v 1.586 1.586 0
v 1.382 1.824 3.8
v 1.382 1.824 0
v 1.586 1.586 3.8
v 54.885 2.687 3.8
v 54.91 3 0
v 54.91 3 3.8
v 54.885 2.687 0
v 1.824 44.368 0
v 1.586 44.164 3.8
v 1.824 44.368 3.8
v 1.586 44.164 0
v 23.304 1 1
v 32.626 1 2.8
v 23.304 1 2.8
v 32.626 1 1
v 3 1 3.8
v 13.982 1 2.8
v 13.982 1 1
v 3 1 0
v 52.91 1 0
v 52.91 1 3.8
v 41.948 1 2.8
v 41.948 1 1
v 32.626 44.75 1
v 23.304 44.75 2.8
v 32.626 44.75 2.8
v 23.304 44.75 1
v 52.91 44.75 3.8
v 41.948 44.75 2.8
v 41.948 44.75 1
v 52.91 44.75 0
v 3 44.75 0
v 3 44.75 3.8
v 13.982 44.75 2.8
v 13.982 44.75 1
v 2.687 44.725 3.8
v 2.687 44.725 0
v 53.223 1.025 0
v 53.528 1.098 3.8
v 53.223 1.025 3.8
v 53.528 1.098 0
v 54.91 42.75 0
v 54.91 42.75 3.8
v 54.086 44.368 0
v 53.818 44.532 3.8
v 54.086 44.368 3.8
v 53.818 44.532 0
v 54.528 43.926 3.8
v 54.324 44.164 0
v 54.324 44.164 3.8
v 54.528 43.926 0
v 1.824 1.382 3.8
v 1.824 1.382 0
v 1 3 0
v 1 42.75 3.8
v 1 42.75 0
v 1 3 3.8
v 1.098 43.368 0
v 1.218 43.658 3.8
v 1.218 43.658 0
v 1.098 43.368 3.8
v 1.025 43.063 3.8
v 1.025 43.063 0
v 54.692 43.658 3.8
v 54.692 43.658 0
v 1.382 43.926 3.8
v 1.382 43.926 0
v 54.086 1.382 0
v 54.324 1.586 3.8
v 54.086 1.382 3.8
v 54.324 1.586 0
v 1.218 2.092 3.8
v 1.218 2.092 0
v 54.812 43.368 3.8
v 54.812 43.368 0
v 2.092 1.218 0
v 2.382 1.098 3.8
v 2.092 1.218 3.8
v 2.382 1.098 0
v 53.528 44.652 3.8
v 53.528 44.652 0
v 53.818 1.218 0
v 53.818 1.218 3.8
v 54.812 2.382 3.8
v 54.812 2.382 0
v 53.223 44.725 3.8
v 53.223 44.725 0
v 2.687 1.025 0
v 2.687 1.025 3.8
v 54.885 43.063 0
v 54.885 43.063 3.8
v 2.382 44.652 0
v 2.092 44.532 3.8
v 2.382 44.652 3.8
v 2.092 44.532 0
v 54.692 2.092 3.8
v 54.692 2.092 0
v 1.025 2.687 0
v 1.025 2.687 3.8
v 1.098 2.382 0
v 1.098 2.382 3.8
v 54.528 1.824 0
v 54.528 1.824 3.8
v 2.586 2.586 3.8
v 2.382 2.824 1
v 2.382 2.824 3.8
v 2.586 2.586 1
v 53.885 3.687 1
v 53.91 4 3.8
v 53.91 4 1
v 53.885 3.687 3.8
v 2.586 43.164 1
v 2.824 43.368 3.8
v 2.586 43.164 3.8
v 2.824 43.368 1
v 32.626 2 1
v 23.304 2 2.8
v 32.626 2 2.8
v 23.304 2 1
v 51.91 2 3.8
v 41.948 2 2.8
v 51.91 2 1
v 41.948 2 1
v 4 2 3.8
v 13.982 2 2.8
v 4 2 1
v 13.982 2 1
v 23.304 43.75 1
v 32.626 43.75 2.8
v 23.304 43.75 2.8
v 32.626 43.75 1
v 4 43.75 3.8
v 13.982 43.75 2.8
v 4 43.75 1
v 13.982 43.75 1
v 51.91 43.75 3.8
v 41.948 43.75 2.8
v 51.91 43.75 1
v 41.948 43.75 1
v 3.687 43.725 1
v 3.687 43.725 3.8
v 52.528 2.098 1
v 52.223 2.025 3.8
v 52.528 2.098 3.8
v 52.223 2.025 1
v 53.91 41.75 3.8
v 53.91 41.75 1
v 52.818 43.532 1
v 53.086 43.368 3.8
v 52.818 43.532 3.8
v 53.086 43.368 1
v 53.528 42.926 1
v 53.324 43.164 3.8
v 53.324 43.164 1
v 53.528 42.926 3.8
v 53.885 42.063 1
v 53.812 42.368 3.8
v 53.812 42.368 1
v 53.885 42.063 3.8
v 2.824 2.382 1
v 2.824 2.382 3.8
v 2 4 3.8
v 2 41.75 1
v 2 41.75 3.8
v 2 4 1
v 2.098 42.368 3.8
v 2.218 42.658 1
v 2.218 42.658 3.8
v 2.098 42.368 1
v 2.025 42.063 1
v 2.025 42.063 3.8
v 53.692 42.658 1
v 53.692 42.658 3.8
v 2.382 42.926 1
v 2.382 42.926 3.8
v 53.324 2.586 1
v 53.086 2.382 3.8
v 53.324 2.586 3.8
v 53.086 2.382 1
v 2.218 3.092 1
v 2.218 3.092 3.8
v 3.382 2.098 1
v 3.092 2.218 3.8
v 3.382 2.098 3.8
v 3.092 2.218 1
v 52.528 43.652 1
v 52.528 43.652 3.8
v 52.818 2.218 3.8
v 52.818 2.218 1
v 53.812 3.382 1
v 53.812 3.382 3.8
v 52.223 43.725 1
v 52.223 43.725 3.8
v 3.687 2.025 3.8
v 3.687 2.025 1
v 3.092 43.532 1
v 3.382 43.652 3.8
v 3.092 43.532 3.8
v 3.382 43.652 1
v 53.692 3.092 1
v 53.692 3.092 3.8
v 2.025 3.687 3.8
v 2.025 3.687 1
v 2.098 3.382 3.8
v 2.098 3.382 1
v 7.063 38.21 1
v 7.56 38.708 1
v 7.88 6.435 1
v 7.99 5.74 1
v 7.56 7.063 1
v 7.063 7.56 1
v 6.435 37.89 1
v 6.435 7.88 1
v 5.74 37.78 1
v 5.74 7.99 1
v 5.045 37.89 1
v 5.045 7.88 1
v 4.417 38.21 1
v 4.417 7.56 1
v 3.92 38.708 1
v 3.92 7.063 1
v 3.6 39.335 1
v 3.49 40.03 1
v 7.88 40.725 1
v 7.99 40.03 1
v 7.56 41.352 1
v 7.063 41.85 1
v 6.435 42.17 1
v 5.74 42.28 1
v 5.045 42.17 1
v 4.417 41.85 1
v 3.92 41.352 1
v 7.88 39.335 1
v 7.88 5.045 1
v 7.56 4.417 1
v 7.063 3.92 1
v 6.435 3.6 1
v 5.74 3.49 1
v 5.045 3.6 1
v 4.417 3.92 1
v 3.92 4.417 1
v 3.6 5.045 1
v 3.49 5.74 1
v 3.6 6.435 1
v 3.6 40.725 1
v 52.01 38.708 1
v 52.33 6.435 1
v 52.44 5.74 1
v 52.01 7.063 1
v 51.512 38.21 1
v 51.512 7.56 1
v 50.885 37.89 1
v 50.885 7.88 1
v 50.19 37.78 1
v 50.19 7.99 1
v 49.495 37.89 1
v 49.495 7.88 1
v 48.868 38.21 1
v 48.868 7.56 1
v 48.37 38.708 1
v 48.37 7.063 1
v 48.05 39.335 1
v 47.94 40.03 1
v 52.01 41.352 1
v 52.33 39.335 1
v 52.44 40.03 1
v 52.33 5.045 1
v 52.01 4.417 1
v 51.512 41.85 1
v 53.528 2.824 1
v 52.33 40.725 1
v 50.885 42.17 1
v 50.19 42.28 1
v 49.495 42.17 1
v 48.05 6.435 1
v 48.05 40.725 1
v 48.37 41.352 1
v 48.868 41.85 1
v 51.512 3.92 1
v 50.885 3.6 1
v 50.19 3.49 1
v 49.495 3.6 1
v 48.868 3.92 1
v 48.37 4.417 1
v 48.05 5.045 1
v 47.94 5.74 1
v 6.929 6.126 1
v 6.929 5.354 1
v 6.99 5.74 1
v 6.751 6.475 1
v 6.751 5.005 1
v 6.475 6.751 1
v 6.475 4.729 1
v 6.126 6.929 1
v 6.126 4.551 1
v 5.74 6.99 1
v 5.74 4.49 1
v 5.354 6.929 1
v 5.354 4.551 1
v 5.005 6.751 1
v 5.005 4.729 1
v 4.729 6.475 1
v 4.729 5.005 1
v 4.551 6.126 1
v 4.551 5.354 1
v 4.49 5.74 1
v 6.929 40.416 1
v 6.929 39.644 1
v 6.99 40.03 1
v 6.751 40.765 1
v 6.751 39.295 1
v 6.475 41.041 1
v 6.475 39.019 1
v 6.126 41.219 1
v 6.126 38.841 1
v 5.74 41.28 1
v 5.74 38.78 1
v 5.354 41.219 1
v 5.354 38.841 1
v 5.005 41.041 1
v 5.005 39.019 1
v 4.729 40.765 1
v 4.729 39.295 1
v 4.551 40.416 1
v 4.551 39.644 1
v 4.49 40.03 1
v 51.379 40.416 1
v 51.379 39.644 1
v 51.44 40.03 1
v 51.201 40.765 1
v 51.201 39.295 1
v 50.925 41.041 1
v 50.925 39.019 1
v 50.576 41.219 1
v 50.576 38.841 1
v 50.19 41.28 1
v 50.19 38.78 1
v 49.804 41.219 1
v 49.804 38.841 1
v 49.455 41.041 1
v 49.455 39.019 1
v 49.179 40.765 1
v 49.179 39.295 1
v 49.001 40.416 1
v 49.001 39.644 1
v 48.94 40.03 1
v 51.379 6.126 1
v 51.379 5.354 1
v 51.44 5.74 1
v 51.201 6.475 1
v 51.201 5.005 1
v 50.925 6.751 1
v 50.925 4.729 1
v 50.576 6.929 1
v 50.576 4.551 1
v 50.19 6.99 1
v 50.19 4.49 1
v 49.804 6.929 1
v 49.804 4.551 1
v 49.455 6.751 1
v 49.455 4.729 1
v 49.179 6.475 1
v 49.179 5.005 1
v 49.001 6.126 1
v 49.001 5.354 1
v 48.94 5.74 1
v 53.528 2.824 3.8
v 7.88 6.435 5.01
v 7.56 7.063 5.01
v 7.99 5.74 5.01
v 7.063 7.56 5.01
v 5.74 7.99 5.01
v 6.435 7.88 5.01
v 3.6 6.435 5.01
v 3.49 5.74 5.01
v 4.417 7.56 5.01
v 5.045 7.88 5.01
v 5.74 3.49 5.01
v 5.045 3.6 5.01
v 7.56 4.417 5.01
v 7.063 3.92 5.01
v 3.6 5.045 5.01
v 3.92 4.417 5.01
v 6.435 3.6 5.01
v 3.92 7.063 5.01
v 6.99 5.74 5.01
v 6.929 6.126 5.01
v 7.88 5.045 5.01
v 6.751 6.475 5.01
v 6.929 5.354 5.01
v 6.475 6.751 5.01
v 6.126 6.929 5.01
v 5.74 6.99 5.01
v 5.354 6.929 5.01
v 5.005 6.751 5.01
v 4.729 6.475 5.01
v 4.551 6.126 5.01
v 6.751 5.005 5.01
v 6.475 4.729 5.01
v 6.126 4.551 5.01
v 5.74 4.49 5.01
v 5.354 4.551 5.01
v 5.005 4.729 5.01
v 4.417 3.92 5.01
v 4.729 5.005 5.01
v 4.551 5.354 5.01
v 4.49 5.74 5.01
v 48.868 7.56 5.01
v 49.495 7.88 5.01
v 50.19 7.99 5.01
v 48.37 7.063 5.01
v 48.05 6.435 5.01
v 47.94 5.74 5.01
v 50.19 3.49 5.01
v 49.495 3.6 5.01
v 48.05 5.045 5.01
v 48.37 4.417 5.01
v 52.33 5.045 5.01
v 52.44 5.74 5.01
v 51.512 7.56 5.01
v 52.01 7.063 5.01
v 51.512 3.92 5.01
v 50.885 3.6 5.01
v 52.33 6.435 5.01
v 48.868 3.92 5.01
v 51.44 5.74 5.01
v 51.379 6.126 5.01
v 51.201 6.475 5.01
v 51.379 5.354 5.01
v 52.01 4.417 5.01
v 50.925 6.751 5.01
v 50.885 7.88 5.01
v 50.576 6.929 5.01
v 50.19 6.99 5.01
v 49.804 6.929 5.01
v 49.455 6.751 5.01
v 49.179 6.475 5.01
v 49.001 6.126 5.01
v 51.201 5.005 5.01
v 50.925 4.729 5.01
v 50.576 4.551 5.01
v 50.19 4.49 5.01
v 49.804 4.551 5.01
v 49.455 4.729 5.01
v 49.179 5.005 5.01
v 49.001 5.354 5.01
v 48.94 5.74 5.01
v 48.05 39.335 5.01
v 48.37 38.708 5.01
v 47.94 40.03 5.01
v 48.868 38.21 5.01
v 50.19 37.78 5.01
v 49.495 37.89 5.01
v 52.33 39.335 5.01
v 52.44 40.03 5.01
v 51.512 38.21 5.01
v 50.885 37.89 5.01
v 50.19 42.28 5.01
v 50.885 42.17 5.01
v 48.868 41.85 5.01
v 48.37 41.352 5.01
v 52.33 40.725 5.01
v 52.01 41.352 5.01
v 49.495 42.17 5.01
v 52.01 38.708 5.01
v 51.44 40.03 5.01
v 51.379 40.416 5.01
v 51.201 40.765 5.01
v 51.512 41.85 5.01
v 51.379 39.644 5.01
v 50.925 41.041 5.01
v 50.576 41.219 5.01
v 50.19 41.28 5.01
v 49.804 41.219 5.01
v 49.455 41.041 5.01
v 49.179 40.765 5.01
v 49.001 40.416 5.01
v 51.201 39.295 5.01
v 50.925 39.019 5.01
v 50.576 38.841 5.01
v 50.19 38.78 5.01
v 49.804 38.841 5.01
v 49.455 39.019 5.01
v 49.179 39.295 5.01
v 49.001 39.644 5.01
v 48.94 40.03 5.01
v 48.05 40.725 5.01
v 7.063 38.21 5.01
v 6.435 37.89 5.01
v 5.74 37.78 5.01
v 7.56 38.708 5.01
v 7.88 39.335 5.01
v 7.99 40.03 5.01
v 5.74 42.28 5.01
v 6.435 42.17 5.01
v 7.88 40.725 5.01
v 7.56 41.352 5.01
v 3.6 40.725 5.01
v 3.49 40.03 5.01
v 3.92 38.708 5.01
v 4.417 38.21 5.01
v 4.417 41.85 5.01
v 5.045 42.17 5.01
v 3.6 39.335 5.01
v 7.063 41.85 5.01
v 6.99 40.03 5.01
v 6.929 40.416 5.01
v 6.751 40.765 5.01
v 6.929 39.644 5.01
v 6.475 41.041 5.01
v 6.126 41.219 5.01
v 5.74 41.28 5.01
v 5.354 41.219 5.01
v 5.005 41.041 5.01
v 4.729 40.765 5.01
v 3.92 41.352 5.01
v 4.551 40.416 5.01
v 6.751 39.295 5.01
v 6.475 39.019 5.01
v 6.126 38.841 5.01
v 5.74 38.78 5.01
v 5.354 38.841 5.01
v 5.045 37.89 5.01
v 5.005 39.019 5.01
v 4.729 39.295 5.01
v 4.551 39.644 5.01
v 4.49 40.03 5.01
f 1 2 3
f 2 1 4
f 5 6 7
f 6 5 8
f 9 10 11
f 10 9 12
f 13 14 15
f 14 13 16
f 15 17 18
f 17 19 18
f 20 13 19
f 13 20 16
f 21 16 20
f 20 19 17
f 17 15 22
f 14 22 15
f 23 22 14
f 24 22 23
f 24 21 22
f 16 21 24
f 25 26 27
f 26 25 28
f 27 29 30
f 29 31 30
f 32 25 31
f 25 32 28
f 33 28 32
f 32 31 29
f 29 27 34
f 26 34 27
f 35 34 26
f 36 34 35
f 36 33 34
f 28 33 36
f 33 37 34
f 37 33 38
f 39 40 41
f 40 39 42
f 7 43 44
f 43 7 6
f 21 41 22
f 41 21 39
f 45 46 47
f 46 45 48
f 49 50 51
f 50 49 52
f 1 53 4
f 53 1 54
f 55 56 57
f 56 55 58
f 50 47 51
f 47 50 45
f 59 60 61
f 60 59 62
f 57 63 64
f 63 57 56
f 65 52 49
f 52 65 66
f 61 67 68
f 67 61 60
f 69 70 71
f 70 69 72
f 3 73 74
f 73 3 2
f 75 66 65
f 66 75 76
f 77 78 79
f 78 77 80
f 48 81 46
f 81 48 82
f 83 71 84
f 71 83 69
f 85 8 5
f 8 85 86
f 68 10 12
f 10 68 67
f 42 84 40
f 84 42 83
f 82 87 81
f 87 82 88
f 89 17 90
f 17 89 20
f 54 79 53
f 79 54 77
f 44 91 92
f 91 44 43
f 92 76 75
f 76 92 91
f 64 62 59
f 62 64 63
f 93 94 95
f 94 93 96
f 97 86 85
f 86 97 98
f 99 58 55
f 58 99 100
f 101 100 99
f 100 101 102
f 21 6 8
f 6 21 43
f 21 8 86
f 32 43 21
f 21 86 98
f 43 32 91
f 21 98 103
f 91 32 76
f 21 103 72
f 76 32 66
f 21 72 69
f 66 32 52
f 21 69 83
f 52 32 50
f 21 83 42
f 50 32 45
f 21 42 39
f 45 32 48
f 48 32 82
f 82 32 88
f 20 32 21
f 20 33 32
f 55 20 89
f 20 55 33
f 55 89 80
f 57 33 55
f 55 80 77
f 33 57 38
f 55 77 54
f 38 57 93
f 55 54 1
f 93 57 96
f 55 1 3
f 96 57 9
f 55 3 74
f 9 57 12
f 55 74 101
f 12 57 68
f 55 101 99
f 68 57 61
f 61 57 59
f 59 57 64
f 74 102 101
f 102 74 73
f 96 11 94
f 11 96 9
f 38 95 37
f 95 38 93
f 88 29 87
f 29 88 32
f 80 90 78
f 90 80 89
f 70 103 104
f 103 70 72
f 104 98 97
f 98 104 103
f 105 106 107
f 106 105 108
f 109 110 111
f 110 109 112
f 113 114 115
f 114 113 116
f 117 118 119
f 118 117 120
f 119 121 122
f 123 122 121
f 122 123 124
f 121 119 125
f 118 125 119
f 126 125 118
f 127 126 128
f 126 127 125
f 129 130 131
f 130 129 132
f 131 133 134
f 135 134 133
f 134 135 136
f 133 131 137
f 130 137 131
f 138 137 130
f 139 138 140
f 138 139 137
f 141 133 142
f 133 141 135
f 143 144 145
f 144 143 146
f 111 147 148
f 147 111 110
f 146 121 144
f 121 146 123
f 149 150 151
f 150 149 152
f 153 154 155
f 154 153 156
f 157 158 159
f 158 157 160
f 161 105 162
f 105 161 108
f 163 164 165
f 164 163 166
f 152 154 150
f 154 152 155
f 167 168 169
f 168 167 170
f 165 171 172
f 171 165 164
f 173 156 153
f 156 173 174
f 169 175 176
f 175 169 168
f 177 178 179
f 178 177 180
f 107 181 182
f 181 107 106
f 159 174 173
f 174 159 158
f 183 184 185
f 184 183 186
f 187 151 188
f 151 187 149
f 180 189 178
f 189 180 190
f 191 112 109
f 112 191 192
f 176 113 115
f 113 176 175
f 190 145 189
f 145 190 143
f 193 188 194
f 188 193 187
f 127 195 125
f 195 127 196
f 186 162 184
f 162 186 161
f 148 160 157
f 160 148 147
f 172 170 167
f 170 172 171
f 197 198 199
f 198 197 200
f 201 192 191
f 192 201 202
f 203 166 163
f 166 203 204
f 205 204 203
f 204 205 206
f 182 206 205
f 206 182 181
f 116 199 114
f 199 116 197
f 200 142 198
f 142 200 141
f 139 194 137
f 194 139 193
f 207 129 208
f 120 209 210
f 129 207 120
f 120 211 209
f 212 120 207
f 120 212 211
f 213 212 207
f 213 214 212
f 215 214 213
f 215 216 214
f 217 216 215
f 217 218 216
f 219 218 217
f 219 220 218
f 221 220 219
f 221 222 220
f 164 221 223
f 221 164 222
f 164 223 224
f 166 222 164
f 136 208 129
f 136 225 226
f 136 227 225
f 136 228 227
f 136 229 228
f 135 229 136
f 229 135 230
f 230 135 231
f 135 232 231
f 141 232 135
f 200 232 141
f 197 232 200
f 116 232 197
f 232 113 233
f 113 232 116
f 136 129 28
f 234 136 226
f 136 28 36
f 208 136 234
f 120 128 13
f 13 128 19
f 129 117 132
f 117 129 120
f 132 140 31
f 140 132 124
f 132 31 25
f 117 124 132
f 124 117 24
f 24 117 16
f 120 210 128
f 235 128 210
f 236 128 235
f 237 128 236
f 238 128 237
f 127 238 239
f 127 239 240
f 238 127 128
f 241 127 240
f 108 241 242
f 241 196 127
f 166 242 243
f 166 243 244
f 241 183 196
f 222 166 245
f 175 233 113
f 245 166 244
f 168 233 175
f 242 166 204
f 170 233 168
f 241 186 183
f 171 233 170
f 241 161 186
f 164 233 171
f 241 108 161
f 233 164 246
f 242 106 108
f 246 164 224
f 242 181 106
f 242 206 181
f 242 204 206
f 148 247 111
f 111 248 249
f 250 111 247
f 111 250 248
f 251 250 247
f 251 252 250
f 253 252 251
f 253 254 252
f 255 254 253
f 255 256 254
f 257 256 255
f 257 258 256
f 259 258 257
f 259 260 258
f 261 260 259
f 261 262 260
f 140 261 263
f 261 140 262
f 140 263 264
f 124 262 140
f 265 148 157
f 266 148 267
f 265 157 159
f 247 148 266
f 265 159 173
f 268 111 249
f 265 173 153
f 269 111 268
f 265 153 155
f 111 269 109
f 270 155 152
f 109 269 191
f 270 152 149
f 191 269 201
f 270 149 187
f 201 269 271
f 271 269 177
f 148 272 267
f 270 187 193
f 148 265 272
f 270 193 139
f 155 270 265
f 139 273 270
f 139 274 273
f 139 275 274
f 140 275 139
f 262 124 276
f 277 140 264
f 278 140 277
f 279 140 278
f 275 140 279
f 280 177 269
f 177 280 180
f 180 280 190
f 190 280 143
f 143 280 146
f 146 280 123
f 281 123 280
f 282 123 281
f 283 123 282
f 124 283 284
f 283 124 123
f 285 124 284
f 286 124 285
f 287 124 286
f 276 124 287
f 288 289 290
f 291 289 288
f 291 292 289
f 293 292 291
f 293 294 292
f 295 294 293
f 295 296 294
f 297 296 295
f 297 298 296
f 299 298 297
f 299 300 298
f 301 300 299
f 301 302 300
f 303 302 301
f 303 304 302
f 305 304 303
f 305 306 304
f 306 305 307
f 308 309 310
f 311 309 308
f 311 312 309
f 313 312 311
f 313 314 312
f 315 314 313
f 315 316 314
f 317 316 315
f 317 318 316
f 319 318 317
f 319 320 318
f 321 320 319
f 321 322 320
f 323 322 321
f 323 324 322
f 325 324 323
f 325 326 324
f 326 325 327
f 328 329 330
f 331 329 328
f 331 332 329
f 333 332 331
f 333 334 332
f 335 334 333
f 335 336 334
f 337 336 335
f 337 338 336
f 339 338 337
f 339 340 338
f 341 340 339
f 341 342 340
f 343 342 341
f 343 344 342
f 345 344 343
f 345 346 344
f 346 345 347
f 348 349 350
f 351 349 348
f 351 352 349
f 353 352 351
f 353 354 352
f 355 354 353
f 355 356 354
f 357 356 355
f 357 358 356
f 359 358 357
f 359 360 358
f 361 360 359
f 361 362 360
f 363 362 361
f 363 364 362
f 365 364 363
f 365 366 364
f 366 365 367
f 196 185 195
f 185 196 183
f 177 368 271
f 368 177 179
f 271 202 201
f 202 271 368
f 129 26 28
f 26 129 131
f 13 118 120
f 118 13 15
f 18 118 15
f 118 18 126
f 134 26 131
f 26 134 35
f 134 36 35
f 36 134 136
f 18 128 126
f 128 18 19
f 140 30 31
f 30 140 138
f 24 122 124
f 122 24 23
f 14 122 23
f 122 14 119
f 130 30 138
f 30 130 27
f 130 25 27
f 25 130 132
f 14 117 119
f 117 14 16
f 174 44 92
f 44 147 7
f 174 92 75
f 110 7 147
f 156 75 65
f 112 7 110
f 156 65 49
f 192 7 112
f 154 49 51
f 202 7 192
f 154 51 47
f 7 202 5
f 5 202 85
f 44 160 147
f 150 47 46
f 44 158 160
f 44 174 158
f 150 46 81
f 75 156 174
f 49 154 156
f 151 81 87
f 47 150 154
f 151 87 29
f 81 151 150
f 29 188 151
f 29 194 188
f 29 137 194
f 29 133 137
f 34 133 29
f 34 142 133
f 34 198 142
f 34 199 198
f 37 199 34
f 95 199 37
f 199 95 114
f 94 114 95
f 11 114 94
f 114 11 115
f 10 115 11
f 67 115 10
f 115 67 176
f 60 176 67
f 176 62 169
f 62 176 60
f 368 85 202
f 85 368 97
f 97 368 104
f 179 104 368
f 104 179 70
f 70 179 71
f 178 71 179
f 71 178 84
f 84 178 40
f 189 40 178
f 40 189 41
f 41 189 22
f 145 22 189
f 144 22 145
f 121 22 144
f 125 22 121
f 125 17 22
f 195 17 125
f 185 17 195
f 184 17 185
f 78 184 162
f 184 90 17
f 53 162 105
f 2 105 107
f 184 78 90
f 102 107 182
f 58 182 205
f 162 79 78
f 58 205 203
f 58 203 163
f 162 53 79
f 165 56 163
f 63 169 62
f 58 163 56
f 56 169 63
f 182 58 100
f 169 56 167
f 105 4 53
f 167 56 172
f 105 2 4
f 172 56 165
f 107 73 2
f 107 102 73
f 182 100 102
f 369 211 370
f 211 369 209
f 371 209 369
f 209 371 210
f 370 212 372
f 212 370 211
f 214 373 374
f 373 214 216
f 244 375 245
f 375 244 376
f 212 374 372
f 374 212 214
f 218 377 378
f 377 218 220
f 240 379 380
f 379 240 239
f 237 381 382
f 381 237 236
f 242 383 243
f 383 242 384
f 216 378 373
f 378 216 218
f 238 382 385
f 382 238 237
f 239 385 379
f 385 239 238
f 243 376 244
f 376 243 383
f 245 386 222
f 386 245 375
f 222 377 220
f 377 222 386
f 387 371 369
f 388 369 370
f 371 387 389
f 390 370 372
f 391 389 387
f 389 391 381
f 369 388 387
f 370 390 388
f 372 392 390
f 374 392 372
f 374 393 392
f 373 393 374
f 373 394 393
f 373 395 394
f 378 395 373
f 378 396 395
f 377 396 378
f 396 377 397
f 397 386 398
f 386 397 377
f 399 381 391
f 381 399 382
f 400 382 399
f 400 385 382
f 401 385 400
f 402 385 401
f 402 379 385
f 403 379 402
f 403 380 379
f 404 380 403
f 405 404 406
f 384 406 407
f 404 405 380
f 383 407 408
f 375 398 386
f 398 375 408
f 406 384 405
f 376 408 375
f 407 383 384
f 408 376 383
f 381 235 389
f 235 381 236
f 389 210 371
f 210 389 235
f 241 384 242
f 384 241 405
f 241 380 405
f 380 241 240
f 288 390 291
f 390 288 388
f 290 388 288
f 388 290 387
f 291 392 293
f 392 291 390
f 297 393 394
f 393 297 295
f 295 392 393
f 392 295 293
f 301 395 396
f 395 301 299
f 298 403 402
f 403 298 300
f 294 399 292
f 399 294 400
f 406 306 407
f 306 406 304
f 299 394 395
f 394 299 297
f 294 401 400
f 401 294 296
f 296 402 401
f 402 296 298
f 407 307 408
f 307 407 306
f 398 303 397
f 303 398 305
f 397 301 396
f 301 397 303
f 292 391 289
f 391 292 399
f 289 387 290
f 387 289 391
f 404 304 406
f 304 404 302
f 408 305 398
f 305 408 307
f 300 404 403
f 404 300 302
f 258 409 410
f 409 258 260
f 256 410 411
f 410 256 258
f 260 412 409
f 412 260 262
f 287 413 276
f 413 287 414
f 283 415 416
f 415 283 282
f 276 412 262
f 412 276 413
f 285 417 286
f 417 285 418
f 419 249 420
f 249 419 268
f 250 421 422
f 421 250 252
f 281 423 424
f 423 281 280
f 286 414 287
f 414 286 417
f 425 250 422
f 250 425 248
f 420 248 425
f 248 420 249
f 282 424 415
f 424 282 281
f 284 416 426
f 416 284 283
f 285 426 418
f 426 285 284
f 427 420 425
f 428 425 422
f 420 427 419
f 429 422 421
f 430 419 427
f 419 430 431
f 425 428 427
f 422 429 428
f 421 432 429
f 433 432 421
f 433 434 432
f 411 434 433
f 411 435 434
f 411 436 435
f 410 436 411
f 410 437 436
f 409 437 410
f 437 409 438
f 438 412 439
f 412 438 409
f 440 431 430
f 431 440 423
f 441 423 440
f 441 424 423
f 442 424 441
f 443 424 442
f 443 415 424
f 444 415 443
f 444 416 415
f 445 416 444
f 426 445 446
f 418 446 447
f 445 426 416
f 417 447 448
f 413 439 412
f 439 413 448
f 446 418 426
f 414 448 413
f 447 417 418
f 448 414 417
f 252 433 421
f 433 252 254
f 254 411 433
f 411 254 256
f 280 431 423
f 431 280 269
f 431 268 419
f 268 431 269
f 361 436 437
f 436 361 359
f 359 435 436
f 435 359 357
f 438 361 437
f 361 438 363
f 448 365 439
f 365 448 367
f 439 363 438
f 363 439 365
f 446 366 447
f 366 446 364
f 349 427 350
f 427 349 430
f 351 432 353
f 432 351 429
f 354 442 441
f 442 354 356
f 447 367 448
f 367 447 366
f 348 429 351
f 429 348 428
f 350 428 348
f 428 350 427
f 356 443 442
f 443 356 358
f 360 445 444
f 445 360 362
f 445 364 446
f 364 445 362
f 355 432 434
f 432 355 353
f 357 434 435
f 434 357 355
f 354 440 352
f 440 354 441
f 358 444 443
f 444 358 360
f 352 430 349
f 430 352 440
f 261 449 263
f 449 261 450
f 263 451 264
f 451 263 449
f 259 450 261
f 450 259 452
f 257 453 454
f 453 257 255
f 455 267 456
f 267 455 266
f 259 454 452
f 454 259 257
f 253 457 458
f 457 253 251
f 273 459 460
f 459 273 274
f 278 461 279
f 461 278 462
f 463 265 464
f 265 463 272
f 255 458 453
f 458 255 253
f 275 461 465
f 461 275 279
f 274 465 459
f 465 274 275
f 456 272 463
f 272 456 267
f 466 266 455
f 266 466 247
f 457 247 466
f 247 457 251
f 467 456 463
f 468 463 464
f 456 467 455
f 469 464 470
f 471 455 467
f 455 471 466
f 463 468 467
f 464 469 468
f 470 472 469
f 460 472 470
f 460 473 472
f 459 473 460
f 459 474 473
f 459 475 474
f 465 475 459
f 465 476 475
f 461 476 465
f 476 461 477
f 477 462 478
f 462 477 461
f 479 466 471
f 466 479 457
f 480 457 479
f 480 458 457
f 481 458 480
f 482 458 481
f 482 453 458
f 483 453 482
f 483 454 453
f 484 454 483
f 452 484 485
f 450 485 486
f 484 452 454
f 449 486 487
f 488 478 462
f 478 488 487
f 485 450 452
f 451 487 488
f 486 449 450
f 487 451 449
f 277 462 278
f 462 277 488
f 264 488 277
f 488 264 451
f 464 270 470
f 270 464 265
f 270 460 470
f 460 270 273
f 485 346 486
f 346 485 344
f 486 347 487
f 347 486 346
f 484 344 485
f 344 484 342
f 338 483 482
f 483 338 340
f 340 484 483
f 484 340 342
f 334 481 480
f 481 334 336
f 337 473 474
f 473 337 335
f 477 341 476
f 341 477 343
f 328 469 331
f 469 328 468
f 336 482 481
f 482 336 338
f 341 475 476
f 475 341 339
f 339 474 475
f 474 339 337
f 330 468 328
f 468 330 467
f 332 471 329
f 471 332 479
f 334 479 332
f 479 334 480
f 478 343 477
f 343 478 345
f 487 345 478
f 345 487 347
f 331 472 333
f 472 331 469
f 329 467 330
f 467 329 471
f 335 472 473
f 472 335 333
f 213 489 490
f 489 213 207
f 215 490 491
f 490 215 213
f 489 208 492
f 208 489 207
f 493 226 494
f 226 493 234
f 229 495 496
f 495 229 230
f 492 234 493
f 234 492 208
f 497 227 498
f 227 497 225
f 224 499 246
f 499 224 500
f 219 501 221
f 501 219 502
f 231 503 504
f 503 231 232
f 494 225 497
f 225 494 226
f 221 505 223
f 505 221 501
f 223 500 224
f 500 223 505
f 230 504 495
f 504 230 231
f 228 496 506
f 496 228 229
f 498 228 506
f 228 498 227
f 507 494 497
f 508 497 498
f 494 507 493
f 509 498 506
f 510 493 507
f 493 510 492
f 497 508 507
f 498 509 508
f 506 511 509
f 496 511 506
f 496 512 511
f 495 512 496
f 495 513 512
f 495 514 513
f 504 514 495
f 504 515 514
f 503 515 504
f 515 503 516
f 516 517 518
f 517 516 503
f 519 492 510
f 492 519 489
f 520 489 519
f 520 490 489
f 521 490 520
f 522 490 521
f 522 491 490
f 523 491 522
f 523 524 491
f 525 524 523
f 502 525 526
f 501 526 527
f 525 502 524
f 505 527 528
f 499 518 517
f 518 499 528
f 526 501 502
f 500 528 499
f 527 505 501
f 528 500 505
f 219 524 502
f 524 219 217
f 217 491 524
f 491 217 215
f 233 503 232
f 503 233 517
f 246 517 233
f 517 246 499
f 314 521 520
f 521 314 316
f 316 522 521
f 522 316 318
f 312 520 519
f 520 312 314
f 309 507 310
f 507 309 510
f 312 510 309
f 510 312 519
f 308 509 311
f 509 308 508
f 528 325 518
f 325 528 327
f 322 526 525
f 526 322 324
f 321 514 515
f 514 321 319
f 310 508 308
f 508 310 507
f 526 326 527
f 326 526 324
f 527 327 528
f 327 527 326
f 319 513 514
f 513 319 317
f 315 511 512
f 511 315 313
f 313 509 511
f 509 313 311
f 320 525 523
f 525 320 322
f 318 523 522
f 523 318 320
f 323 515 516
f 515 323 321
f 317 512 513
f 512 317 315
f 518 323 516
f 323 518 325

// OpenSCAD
// file: ProjectBox/oled91.scad
// Copyright (c) 2024 Chris Lee and contibuters.
// Licensed under the MIT license. See LICENSE file in the project root for details.

// This is a simple model of a 0.91" OLED module.
// E.g., https://www.aliexpress.us/item/2251832485915041.html
module oled91() {
  s = inch * 0.1;
  pin_len = 4;
  color("silver") {
    for (i = [0: 3]) {
      translate([s*i+pad_space, pad_space/2, -pin_len]) cube([0.25, 0.25, pin_len]);
    }
  }
  color("gray") cube([12, 38, 1]);
  translate([0, 5.5, 1]) color("black") cube([12, 28, 1]);
}
// file: ProjectBox/util.scad
// Copyright (c) 2024 Chris Lee and contibuters.
// Licensed under the MIT license. See LICENSE file in the project root for details.

include <MCAD/units.scad>

ones = [1, 1, 1];

module RX(angle) {
  rotate(angle, X) children();
}
module RY(angle) {
  rotate(angle, Y) children();
}
module RZ(angle) {
  rotate(angle, Z) children();
}
module TX(dist) {
  translate(X*dist) children();
}
module TX(dist) {
  translate(X*dist) children();
}
module TY(dist) {
  translate(Y*dist) children();
}
module TZ(dist) {
  translate(Z*dist) children();
}

// x-extra and y-extra adjust the x/y offset at the far-x and far-y corners.
module at_corners(dims, corner_offset, to_draw=undef, x_extra=0.0, y_extra=0.0) {
  o = corner_offset;
  if (!to_draw || to_draw[0]) translate([o, o, 0]) children();
  if (!to_draw || to_draw[1]) translate([dims[0]-o+x_extra, o, 0]) rotate(90, Z) children();
  if (!to_draw || to_draw[2]) translate([dims[0]-o+x_extra, dims[1]-o+y_extra, 0])
				rotate(180, Z) children();
  if (!to_draw || to_draw[3]) translate([o, dims[1]-o+y_extra, 0]) rotate(270, Z) children();
}
// file: ProjectBox/screw_tab.scad
// Copyright (c) 2024 Chris Lee and contibuters.
// Licensed under the MIT license. See LICENSE file in the project root for details.

include <MCAD/units.scad>

// Screw tab is drawn in the y-direction (attached on -Y side).
module screw_tab(tab_width=10, thickness=2, screw_radius=2) {
  $fn=40;
  dz = thickness;
  sd = tab_width;
  sr = tab_width / 2;
  translate([-sr, -epsilon, 0]) difference() {
    union() {
      cube([sd, sr, dz]);
      translate([sr, sr, 0]) cylinder(dz, sr, sr);
    }
    translate([sr, sr, -epsilon]) cylinder(dz+1, screw_radius, screw_radius);
  }
}
// file: ProjectBox/rounded_box.scad
// Copyright (c) 2024 Chris Lee and contibuters.
// Licensed under the MIT license. See LICENSE file in the project root for details.

module rounded_box(dims, r) {
  x = dims[0];
  y = dims[1];
  z = dims[2];
  module cyl() {
    cylinder(z, r, r, $fn=40);
  }
  if (r == 0) {
    cube(r);
  } else {
    hull() {
      translate([r, r, 0]) cyl();
      translate([x-r, r, 0]) cyl();
      translate([x-r, y-r, 0]) cyl();
      translate([r, y-r, 0]) cyl();
    }
  }
}
// file: board.scad
// Copyright (c) 2024 Chris Lee and contibuters.
// Licensed under the MIT license. See LICENSE file in the project root for details.

include <ProjectBox/project_box.scad>
include <ProjectBox/oled91.scad>

board_thickness = 1.6;
pad_space = 2.54;
// GardenL33: board_dims = [26*pad_space, 15.5*pad_space, board_thickness];
board_dims = [19.5*pad_space, 15.5*pad_space, board_thickness];

module LoRa133_to_oled_frame(z_translate=true) {
  u = pad_space;
  z_offset = z_translate ? 13 : 0;
  translate([u*3-0.5, 0.6, z_offset]) children();
}

module Lora133_board() {
  u = pad_space;

  // Board imported from KiCad (VRML) -> meshlab
   translate([board_dims[0]/2, board_dims[1]/2, board_dims[2]/2]) color("white")
    import(file="LoRa133.stl", convexity=3);

  LoRa133_to_oled_frame() oled91();
}
// file: ProjectBox/mounts.scad
// Copyright (c) 2024 Chris Lee and contibuters.
// Licensed under the MIT license. See LICENSE file in the project root for details.

module screw_mount(height, wall, screw_radius) {
  $fn = 20;
  difference() {
    cylinder(height, screw_radius+wall, screw_radius+wall);
    cylinder(height+epsilon, screw_radius, screw_radius);
  }
}
// file: ProjectBox/project_box.scad
// Copyright (c) 2024 Chris Lee and contibuters.
// Licensed under the MIT license. See LICENSE file in the project root for details.

include <MCAD/units.scad>
include <rounded_box.scad>
include <screw_tab.scad>
use <util.scad>

bump_d = 0.8;

module in_board_frame(outer_dims, board_dims, space_below_board) {
  translate([(outer_dims[0] - board_dims[0])/2,
	     (outer_dims[1] - board_dims[1])/2,
	     space_below_board])
    children();
}

default_tab_len = 10;
function tab_length(dim, num_tabs=2) = min(default_tab_len, dim/(2*(num_tabs+1)));
function tab_offset(i, dim, num_tabs=2) = (dim*(i+1)/(num_tabs+1))-0.5*tab_length(dim, num_tabs);

module project_box(outer_dims,
		   wall_thickness=1,
		   gap=0.1,
		   // If true put snaps for top/bottom on sides rather than front/back.
		   snaps_on_sides=false,
		   corner_radius=0.0,
		   top=true,
		   top_cutouts=undef,
		   ym_cutouts=undef,
		   screw_tab_d=0) {
  wall = wall_thickness;
  num_snaps = 2;

  // Length of side of box snap-tabs will be added.
  tabdim = snaps_on_sides ? outer_dims[1] : outer_dims[0];
  // Length of snap-tab holes (tabs shrinks slightly to fit).
  tablen = tab_length(tabdim, num_snaps);
  // Difference between tab length and tab hole length;
  tab_gap = 1;

  // Space between bottom of box and top of box.
  fit_gap = 0.02;

  // The bottom of the box fits inside the shell of the top.
  dims = top ? outer_dims : outer_dims - (2*wall+fit_gap) * [1, 1, 1];

  // Tabs for clicking base into start at wall-height, are 2*wall-height high.
  // Allow 2*wall_height above bump for hight of bottom part of box.
  tab_depth = min(bump_d, dims[2] - 3*wall);
  bottom_height = wall+tab_depth+2*wall;

  module bump() {
    dh = bump_d - fit_gap;
    rotate(90, Y) cylinder(tablen-tab_gap, dh, dh, $fn=20);
  }

  module hump_positives(humps, space_above_board, corner_radius, wall) {
    for (hump = humps) {
      offset = hump[0];
      outer_dims = hump[1];
      z_start = gap * 2 + wall + space_below_board + board_thickness + space_above_board + epsilon;
      translate([offset[0], offset[1], z_start]) rounded_box(outer_dims, corner_radius);
    }
  }
  module hump_negatives(humps, space_above_board, corner_radius, wall) {
    for (hump = humps) {
      offset = hump[0];
      outer_dims = hump[1];
      z_start = gap * 2 + wall + space_below_board + board_thickness + space_above_board - epsilon - epsilon;
      translate([offset[0]+wall, offset[1]+wall, z_start])
	rounded_box(outer_dims-[wall*2, wall*2, wall], corner_radius);
    }
  }
  module cutouts(cutout_list, remove_len) {
    for (cutout = cutout_list) {
      offset = cutout[0];
      dims = cutout[1];
      translate([offset[0], offset[1], 0]) cube([dims[0], dims[1], remove_len]);
    }
  }

  wedge_dx = 2*wall;
  wedge_dy = min(outer_dims[1]-2*wall-corner_radius, 10);
  wedge_dz = wedge_dx;
  module wedge() {
    // Bump to stop the bottom of box to go too up into the top.
    translate([0, 0, bottom_height+fit_gap]) {
      // Start with cube, switch to wedge for printing.
      translate(Y*wedge_dy) rotate(90, X)
	linear_extrude(wedge_dy) polygon([[0, 0], [0, wedge_dz], [wedge_dx, 0]]);
    }
  }

  // The bottom of the box fits inside the shell of the top.
  translate(top ? [0,0,0] : wall*[1, 1, 0]) union() {
    difference() {
      // shell
      difference() {
	union() {
	  rounded_box(dims, corner_radius);
	  if (top)
	    hump_positives(bumps, space_above_board, corner_radius, wall);
	}
	iz = top ? (dims[2] - 2*wall) : dims[2];  // inner-z
	translate(ones*wall) rounded_box([dims[0] - wall*2, dims[1]-wall*2, iz], corner_radius);
	if (top) {
	  hump_negatives(bumps, space_above_board, corner_radius, wall);
	  // cutouts from the top surface
	  if (top_cutouts)
	    cutouts(top_cutouts, remove_len=100);
	  // cutouts from the y=0 surface
	  if (ym_cutouts)
	    translate([0, 1+wall, 0]) rotate([90, 0, 0]) cutouts(ym_cutouts, remove_len=(wall+2));
	}
      }

      if (!top) {
	// Box bottom

	// Cut off top.
	translate([-1, -1, bottom_height]) { cube(dims + 2 * ones); }
	// Make a slot for top to click into
	bottom_offset = -wall;  // offset to account for bottom fitting inside top.
	if (snaps_on_sides) {
	  for (isnap = [0:num_snaps-1]) {
	    y = tab_offset(isnap, tabdim, num_snaps) + bottom_offset;
	    translate([-1, y, wall]) cube([dims[0]+2, tablen, wall+tab_depth]);
	  }
	} else {
	  for (isnap = [0:num_snaps-1]) {
	    x = tab_offset(isnap, tabdim, num_snaps) + bottom_offset;
	    translate([x, -1, wall]) cube([tablen, dims[1]+2, wall+tab_depth]);
	  }
	}
      }	else {
	// Box top

	// Cut out for bottom
	translate(wall*[1, 1, -1]) {
	  rounded_box([dims[0]-2*wall, dims[1]-2*wall, wall*3], corner_radius);
	}
      }
    }

    // Board supports
    if (top) {
      // Snaps: Make bumps to click into slot in bottom.
      if (snaps_on_sides) {
	for (isnap = [0:num_snaps-1]) {
	  y = tab_offset(isnap, tabdim, num_snaps) + tab_gap/2;
	  translate([wall-epsilon, y, wall+gap/2]) rotate(90, Z) bump();
	  translate([dims[0]+epsilon-wall, y, wall+gap/2]) rotate(90, Z) bump();
	}
	translate([wall-epsilon, (outer_dims[1]-wedge_dy)/2, 0]) wedge();
	translate([outer_dims[0]-wall+epsilon, (outer_dims[1]+wedge_dy)/2, 0])
	  rotate(180, Z) wedge();
      } else {
	for (isnap = [0:num_snaps-1]) {
	  x = tab_offset(isnap, tabdim, num_snaps) + tab_gap/2;
	  translate([x, wall-epsilon, wall+gap/2]) bump();
	  translate([x, dims[1]+epsilon-wall, wall+gap/2]) bump();
	}
	translate([(outer_dims[0]+wedge_dy)/2, wall-epsilon, 0]) rotate(90, Z) wedge();
	translate([(outer_dims[0]-wedge_dy)/2, outer_dims[1]-wall+epsilon, 0])
	  rotate(270, Z) wedge();
      }
    }
  }

  if (top && screw_tab_d > 0) {
    translate([outer_dims[0]/2, outer_dims[1], 0])
      screw_tab(tab_width=screw_tab_d, thickness=2*wall, screw_radius=2);
  }
}

module holder_tab(wall_thickness, thickness=2, out_r=4, in_r=2) {
  translate(Z*wall_thickness) linear_extrude(thickness) {
    $fn = 20;
    y = epsilon;
    difference() {
      hull() {
	translate([0, epsilon-out_r]) circle(out_r);
	polygon([[-out_r, epsilon], [out_r, epsilon],
		 [out_r, 2*epsilon], [out_r, 2*epsilon]]);
      }
      translate([0, -out_r]) circle(in_r);
    }
  }
}
// file: gui.scad
// Copyright (c) 2026 Chris Lee and contibuters.
// Licensed under the MIT license. See LICENSE file in the project root for details.

// :GUI:
leak_check = false;
// :GUI:
oled = true;
// :GUI:
mount_tab = true;
// :GUI:
motion_light = true;
// :GUI:
motion = false;
// :GUI:
radar = false;
// :GUI:
show_vitamins = true;
// :GUI:
show_box = true;
// :GUI:
top = true;
// file: box.scad
// Copyright (c) 2024 Chris Lee and contibuters.
// Licensed under the MIT license. See LICENSE file in the project root for details.

include <ProjectBox/project_box.scad>
include <ProjectBox/mounts.scad>
include <board.scad>

ones = [1, 1, 1];

wall_thickness = 1;
gap = 0.2;
corner_radius = 2;
mount_offset = pad_space;

space_above_board = 12;
space_below_board = 5;
inner_dims = (board_dims
	      + Z*(space_above_board+space_below_board)
	      + 2*gap*ones);
outer_dims = (inner_dims
	      + 2*ones*wall_thickness
	      + [2, 2, 0] * corner_radius);

module Lora33_box_to_board_frame() {
  in_board_frame(outer_dims, board_dims, 0) children();
}


module in_Lora133_board_frame(board_height=false) {
  zoffset = board_height ? space_below_board + wall_thickness - 1: 0;
  in_board_frame(outer_dims, board_dims, zoffset) children();
}

module Lora133_box(top) {
  wall = wall_thickness;
  u = 2.54;

  difference() {
    union() {
      project_box(outer_dims,
		  wall_thickness=wall_thickness,
		  gap=gap,
		  corner_radius=corner_radius,
		  top=top);
      if (top) {
	// Bumps on top etc.
	// translate(b1o) rounded_box(b1d, corner_radius);
      } else {
	// Stuff to add on bottom.
	in_Lora133_board_frame() translate([0, 0, epsilon]) {
	  at_corners(board_dims, mount_offset)
	    screw_mount(space_below_board, wall, 2.5/2);
	}
      }	
    }
    // Cut outs.
    if (top) {
      // OLED
      Lora33_box_to_board_frame() LoRa133_to_oled_frame(z_translate=false) {
	translate([0, u*2, outer_dims[2] - wall -1]) {
	  cube([12, 28, wall+2]);
	}
      }
      // Hole for antenna.
      translate([outer_dims[0]-wall-1, 14, -1]) cube([wall+2, 10, 13]);
      // Hole for usb
      translate([23, -1, wall + space_below_board + board_thickness-2]) cube([9.5, wall+2, 3.5]);
      
      // Negative space of bumps.
      // translate(b1o+[wall, wall, -epsilon]) rounded_box(b1d-wall*[2, 2, 1], corner_radius);
      // translate(b2o+[wall, wall, -epsilon]) rounded_box(b2d-wall*[2, 2, 1], corner_radius);

    }
  }
}
// main file
// Copyright (c) 2024 Chris Lee and contibuters.
// Licensed under the MIT license. See LICENSE file in the project root for details.

include <box.scad>
include <gui.scad>

top = false;

Lora133_box(top);
